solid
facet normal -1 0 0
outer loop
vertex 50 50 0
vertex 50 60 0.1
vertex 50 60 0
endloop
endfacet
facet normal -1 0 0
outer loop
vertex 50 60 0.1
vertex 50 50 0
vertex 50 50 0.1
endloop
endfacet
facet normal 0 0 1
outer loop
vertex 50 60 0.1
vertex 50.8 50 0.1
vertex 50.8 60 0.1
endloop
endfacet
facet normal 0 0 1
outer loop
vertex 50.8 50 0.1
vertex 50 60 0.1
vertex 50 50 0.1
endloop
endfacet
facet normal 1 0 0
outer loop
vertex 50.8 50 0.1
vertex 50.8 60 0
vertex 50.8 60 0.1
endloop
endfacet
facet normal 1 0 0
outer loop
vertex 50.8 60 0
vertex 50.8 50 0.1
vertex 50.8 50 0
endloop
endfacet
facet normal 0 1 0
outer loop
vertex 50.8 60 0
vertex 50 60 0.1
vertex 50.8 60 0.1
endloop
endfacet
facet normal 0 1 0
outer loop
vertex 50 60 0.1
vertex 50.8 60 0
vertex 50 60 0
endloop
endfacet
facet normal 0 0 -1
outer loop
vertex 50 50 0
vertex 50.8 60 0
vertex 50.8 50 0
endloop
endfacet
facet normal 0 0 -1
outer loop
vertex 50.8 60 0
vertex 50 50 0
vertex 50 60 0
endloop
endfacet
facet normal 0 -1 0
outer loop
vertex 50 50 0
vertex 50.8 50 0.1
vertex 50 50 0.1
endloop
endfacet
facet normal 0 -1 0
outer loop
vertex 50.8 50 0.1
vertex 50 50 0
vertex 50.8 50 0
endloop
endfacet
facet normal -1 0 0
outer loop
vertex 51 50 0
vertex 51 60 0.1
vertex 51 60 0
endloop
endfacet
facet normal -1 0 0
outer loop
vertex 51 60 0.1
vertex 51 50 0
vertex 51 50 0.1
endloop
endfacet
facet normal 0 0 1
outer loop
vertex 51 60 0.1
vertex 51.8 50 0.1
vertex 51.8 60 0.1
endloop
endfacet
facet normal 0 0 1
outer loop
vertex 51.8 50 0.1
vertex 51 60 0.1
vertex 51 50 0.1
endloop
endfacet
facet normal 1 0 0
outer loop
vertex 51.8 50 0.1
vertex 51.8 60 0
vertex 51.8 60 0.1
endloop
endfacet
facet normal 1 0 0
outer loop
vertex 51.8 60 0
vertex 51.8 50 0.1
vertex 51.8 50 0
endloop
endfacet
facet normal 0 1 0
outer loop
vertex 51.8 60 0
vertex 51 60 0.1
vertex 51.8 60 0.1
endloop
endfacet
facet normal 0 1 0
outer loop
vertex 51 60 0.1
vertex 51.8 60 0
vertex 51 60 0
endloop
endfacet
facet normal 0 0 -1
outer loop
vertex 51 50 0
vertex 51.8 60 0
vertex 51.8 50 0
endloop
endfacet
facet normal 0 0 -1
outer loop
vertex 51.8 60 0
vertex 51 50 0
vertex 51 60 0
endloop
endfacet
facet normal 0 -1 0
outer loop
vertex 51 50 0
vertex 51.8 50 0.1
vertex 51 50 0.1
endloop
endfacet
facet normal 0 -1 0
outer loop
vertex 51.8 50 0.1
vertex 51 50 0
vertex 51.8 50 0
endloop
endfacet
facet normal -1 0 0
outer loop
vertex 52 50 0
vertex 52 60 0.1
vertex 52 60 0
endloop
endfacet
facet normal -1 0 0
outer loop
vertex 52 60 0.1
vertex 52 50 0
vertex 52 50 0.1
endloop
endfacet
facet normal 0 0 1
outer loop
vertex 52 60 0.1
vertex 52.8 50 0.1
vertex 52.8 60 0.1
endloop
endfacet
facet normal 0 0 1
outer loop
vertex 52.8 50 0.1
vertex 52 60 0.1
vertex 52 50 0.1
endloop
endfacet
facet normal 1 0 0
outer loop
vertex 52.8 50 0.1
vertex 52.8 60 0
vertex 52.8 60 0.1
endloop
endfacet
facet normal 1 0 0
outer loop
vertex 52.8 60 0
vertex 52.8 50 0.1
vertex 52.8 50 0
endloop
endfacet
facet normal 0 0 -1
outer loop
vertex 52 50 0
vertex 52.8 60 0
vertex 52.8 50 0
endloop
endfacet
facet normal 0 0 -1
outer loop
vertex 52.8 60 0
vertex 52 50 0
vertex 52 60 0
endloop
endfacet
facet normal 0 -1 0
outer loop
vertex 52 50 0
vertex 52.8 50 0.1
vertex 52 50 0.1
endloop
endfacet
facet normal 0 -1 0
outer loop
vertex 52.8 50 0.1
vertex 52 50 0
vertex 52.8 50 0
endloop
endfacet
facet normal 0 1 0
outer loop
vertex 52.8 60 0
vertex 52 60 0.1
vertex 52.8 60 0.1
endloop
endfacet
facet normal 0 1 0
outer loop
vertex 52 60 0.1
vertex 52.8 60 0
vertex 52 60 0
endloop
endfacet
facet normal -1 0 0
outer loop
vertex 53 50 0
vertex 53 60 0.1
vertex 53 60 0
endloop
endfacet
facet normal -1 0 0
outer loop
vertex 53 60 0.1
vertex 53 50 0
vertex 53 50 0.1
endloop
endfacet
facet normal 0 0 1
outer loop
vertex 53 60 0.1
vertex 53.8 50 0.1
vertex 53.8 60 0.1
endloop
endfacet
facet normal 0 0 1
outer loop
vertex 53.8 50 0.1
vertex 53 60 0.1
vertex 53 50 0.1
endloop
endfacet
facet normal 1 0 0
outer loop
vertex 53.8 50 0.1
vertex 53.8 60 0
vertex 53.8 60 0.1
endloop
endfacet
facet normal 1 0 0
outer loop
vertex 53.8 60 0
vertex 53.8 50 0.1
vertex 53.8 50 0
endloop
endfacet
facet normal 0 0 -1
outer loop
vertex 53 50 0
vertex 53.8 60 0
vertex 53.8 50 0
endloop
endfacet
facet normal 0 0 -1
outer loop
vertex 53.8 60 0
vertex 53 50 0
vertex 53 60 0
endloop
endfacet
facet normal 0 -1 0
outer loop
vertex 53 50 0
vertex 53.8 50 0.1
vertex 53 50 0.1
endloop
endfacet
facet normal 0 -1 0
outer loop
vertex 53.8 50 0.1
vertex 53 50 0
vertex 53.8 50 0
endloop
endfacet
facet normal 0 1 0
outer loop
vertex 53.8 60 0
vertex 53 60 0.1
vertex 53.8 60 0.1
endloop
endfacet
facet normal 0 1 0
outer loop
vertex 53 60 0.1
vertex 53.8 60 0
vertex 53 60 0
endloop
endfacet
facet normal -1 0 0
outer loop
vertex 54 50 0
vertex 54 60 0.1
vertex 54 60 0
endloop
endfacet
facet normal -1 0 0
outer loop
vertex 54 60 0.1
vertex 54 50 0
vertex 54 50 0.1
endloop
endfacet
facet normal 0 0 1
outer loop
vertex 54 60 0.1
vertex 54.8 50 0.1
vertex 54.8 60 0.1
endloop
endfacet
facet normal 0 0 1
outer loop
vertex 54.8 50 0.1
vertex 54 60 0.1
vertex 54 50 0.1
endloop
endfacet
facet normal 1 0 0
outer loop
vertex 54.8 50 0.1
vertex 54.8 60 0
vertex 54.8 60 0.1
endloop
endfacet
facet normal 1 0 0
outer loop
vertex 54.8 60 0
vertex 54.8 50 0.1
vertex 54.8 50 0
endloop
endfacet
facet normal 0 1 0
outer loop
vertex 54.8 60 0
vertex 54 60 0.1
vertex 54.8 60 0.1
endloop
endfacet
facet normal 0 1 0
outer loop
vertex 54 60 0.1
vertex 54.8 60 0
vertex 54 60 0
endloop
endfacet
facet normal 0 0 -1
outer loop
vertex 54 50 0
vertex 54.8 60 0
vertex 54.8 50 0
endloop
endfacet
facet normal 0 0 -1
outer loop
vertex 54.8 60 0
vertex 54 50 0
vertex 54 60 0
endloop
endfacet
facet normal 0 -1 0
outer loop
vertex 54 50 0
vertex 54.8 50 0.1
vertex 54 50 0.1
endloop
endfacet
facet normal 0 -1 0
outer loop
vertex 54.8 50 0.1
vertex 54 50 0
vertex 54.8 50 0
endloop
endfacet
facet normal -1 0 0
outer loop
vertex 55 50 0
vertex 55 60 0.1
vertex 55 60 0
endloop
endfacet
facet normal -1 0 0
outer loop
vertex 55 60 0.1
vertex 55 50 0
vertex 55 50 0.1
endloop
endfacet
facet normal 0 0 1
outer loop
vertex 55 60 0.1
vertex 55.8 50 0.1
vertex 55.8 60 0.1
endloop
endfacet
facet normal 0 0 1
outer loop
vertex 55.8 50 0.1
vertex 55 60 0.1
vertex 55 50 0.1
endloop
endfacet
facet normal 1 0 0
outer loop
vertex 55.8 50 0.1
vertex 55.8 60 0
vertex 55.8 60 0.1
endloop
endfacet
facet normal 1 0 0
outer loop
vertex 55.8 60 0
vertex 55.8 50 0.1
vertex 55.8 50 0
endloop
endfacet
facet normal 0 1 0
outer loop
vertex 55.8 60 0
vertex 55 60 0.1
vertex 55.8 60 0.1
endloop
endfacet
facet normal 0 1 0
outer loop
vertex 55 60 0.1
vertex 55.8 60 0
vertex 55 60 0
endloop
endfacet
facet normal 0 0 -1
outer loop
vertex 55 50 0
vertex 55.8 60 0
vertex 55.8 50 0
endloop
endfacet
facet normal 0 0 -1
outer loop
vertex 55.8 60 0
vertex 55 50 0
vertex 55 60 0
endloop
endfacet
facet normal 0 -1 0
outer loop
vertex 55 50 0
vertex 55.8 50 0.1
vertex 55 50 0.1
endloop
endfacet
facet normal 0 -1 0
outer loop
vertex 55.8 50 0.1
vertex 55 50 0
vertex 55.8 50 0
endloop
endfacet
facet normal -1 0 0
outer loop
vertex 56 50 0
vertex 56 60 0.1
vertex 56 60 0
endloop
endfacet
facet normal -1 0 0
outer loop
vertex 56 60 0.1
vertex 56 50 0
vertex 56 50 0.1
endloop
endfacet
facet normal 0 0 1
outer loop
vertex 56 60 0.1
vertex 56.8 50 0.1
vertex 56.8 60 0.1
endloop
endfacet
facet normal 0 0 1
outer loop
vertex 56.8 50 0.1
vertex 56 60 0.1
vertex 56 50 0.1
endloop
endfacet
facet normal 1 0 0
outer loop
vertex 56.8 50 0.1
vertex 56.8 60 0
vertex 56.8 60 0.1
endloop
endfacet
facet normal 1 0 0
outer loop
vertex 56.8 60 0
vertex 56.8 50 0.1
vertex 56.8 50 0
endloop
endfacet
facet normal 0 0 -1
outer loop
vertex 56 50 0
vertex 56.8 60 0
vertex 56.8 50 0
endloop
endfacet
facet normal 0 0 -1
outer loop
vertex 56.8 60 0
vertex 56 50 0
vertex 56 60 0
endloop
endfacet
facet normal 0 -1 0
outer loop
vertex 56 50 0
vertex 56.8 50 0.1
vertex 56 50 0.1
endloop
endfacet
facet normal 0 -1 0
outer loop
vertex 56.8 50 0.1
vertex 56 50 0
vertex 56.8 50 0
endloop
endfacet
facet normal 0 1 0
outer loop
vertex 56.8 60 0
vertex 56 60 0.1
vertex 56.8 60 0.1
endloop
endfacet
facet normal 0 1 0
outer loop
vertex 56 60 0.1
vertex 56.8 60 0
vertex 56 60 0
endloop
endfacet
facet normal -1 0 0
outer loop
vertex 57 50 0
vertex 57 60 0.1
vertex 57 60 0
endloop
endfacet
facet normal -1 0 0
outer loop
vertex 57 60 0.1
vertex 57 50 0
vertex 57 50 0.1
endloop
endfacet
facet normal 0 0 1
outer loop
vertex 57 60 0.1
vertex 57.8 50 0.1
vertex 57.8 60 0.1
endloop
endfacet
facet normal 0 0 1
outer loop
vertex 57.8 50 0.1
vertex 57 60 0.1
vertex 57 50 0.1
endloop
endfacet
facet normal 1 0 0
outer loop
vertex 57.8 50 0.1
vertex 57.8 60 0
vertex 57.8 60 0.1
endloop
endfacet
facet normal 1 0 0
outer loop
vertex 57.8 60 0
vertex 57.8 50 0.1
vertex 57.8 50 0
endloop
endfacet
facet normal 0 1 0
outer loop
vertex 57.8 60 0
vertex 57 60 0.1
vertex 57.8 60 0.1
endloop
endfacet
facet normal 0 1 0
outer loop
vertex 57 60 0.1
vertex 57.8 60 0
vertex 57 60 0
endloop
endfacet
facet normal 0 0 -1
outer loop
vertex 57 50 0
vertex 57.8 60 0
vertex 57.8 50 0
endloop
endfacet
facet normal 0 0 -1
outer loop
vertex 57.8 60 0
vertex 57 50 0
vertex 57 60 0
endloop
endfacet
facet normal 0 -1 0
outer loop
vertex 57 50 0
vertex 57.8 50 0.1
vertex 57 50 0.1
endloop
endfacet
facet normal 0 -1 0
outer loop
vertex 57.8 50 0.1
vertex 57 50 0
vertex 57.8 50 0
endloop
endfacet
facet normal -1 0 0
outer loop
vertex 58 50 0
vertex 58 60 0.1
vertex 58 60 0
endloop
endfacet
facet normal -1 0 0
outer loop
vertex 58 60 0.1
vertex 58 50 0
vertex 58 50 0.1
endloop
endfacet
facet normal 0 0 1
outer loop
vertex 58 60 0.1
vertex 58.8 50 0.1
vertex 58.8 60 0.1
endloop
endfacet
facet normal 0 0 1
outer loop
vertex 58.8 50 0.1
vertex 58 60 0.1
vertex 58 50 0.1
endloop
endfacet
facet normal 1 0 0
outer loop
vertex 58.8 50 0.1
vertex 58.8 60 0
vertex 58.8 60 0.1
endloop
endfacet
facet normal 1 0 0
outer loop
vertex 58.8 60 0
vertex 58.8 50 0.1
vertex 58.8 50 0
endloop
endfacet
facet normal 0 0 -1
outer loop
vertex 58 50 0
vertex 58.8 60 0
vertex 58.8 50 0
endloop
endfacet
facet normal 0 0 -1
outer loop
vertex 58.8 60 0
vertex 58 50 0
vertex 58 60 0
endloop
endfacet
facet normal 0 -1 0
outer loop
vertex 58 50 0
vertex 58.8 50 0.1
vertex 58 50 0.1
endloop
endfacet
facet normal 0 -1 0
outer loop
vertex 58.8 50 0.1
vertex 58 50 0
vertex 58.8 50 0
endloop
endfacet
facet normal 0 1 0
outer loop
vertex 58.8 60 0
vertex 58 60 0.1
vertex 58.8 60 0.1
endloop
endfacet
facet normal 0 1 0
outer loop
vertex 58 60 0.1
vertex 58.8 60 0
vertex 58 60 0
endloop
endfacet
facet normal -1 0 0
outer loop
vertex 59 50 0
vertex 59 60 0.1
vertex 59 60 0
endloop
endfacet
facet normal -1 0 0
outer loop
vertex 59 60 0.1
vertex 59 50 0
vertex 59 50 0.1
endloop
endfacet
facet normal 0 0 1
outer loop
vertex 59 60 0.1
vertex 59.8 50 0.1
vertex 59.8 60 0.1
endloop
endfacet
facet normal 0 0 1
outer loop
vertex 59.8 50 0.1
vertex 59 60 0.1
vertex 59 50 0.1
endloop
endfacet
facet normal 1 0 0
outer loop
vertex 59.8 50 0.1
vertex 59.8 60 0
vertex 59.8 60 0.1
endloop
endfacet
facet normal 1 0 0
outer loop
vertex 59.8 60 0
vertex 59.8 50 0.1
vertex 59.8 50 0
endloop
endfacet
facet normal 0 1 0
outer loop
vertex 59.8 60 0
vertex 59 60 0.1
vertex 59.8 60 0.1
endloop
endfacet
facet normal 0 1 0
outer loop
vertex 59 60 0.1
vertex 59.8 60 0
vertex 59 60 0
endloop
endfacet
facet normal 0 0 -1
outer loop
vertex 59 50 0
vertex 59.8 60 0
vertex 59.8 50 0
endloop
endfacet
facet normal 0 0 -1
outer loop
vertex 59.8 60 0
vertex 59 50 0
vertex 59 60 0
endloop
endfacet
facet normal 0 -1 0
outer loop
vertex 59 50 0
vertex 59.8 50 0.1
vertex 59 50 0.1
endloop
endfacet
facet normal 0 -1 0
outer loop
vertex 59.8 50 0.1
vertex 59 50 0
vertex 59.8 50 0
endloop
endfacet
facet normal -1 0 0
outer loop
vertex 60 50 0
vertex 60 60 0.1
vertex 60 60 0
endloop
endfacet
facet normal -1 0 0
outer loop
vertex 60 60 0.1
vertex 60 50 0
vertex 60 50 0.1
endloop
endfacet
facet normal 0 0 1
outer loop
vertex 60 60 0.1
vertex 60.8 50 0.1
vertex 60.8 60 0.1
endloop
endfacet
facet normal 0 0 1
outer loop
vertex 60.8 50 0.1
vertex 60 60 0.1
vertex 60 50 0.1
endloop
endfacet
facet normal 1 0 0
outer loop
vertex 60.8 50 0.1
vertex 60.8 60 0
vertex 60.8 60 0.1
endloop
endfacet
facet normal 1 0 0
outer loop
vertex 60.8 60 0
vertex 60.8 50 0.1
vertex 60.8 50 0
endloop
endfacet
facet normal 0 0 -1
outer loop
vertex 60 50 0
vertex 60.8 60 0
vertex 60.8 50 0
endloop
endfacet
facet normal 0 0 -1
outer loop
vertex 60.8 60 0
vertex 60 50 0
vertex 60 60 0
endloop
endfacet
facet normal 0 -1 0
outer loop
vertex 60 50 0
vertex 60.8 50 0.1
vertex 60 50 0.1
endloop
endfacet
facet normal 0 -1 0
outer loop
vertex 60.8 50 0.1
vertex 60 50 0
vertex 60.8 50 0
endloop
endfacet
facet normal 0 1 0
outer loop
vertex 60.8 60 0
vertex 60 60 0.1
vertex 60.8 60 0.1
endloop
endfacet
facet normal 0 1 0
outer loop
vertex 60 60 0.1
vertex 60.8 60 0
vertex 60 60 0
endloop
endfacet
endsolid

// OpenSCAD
translate([10+40,10+40,0])
        for (i = [0 : 10]){
            translate([i,0,0])
                cube(size = [0.8,10,0.1]);
    }
